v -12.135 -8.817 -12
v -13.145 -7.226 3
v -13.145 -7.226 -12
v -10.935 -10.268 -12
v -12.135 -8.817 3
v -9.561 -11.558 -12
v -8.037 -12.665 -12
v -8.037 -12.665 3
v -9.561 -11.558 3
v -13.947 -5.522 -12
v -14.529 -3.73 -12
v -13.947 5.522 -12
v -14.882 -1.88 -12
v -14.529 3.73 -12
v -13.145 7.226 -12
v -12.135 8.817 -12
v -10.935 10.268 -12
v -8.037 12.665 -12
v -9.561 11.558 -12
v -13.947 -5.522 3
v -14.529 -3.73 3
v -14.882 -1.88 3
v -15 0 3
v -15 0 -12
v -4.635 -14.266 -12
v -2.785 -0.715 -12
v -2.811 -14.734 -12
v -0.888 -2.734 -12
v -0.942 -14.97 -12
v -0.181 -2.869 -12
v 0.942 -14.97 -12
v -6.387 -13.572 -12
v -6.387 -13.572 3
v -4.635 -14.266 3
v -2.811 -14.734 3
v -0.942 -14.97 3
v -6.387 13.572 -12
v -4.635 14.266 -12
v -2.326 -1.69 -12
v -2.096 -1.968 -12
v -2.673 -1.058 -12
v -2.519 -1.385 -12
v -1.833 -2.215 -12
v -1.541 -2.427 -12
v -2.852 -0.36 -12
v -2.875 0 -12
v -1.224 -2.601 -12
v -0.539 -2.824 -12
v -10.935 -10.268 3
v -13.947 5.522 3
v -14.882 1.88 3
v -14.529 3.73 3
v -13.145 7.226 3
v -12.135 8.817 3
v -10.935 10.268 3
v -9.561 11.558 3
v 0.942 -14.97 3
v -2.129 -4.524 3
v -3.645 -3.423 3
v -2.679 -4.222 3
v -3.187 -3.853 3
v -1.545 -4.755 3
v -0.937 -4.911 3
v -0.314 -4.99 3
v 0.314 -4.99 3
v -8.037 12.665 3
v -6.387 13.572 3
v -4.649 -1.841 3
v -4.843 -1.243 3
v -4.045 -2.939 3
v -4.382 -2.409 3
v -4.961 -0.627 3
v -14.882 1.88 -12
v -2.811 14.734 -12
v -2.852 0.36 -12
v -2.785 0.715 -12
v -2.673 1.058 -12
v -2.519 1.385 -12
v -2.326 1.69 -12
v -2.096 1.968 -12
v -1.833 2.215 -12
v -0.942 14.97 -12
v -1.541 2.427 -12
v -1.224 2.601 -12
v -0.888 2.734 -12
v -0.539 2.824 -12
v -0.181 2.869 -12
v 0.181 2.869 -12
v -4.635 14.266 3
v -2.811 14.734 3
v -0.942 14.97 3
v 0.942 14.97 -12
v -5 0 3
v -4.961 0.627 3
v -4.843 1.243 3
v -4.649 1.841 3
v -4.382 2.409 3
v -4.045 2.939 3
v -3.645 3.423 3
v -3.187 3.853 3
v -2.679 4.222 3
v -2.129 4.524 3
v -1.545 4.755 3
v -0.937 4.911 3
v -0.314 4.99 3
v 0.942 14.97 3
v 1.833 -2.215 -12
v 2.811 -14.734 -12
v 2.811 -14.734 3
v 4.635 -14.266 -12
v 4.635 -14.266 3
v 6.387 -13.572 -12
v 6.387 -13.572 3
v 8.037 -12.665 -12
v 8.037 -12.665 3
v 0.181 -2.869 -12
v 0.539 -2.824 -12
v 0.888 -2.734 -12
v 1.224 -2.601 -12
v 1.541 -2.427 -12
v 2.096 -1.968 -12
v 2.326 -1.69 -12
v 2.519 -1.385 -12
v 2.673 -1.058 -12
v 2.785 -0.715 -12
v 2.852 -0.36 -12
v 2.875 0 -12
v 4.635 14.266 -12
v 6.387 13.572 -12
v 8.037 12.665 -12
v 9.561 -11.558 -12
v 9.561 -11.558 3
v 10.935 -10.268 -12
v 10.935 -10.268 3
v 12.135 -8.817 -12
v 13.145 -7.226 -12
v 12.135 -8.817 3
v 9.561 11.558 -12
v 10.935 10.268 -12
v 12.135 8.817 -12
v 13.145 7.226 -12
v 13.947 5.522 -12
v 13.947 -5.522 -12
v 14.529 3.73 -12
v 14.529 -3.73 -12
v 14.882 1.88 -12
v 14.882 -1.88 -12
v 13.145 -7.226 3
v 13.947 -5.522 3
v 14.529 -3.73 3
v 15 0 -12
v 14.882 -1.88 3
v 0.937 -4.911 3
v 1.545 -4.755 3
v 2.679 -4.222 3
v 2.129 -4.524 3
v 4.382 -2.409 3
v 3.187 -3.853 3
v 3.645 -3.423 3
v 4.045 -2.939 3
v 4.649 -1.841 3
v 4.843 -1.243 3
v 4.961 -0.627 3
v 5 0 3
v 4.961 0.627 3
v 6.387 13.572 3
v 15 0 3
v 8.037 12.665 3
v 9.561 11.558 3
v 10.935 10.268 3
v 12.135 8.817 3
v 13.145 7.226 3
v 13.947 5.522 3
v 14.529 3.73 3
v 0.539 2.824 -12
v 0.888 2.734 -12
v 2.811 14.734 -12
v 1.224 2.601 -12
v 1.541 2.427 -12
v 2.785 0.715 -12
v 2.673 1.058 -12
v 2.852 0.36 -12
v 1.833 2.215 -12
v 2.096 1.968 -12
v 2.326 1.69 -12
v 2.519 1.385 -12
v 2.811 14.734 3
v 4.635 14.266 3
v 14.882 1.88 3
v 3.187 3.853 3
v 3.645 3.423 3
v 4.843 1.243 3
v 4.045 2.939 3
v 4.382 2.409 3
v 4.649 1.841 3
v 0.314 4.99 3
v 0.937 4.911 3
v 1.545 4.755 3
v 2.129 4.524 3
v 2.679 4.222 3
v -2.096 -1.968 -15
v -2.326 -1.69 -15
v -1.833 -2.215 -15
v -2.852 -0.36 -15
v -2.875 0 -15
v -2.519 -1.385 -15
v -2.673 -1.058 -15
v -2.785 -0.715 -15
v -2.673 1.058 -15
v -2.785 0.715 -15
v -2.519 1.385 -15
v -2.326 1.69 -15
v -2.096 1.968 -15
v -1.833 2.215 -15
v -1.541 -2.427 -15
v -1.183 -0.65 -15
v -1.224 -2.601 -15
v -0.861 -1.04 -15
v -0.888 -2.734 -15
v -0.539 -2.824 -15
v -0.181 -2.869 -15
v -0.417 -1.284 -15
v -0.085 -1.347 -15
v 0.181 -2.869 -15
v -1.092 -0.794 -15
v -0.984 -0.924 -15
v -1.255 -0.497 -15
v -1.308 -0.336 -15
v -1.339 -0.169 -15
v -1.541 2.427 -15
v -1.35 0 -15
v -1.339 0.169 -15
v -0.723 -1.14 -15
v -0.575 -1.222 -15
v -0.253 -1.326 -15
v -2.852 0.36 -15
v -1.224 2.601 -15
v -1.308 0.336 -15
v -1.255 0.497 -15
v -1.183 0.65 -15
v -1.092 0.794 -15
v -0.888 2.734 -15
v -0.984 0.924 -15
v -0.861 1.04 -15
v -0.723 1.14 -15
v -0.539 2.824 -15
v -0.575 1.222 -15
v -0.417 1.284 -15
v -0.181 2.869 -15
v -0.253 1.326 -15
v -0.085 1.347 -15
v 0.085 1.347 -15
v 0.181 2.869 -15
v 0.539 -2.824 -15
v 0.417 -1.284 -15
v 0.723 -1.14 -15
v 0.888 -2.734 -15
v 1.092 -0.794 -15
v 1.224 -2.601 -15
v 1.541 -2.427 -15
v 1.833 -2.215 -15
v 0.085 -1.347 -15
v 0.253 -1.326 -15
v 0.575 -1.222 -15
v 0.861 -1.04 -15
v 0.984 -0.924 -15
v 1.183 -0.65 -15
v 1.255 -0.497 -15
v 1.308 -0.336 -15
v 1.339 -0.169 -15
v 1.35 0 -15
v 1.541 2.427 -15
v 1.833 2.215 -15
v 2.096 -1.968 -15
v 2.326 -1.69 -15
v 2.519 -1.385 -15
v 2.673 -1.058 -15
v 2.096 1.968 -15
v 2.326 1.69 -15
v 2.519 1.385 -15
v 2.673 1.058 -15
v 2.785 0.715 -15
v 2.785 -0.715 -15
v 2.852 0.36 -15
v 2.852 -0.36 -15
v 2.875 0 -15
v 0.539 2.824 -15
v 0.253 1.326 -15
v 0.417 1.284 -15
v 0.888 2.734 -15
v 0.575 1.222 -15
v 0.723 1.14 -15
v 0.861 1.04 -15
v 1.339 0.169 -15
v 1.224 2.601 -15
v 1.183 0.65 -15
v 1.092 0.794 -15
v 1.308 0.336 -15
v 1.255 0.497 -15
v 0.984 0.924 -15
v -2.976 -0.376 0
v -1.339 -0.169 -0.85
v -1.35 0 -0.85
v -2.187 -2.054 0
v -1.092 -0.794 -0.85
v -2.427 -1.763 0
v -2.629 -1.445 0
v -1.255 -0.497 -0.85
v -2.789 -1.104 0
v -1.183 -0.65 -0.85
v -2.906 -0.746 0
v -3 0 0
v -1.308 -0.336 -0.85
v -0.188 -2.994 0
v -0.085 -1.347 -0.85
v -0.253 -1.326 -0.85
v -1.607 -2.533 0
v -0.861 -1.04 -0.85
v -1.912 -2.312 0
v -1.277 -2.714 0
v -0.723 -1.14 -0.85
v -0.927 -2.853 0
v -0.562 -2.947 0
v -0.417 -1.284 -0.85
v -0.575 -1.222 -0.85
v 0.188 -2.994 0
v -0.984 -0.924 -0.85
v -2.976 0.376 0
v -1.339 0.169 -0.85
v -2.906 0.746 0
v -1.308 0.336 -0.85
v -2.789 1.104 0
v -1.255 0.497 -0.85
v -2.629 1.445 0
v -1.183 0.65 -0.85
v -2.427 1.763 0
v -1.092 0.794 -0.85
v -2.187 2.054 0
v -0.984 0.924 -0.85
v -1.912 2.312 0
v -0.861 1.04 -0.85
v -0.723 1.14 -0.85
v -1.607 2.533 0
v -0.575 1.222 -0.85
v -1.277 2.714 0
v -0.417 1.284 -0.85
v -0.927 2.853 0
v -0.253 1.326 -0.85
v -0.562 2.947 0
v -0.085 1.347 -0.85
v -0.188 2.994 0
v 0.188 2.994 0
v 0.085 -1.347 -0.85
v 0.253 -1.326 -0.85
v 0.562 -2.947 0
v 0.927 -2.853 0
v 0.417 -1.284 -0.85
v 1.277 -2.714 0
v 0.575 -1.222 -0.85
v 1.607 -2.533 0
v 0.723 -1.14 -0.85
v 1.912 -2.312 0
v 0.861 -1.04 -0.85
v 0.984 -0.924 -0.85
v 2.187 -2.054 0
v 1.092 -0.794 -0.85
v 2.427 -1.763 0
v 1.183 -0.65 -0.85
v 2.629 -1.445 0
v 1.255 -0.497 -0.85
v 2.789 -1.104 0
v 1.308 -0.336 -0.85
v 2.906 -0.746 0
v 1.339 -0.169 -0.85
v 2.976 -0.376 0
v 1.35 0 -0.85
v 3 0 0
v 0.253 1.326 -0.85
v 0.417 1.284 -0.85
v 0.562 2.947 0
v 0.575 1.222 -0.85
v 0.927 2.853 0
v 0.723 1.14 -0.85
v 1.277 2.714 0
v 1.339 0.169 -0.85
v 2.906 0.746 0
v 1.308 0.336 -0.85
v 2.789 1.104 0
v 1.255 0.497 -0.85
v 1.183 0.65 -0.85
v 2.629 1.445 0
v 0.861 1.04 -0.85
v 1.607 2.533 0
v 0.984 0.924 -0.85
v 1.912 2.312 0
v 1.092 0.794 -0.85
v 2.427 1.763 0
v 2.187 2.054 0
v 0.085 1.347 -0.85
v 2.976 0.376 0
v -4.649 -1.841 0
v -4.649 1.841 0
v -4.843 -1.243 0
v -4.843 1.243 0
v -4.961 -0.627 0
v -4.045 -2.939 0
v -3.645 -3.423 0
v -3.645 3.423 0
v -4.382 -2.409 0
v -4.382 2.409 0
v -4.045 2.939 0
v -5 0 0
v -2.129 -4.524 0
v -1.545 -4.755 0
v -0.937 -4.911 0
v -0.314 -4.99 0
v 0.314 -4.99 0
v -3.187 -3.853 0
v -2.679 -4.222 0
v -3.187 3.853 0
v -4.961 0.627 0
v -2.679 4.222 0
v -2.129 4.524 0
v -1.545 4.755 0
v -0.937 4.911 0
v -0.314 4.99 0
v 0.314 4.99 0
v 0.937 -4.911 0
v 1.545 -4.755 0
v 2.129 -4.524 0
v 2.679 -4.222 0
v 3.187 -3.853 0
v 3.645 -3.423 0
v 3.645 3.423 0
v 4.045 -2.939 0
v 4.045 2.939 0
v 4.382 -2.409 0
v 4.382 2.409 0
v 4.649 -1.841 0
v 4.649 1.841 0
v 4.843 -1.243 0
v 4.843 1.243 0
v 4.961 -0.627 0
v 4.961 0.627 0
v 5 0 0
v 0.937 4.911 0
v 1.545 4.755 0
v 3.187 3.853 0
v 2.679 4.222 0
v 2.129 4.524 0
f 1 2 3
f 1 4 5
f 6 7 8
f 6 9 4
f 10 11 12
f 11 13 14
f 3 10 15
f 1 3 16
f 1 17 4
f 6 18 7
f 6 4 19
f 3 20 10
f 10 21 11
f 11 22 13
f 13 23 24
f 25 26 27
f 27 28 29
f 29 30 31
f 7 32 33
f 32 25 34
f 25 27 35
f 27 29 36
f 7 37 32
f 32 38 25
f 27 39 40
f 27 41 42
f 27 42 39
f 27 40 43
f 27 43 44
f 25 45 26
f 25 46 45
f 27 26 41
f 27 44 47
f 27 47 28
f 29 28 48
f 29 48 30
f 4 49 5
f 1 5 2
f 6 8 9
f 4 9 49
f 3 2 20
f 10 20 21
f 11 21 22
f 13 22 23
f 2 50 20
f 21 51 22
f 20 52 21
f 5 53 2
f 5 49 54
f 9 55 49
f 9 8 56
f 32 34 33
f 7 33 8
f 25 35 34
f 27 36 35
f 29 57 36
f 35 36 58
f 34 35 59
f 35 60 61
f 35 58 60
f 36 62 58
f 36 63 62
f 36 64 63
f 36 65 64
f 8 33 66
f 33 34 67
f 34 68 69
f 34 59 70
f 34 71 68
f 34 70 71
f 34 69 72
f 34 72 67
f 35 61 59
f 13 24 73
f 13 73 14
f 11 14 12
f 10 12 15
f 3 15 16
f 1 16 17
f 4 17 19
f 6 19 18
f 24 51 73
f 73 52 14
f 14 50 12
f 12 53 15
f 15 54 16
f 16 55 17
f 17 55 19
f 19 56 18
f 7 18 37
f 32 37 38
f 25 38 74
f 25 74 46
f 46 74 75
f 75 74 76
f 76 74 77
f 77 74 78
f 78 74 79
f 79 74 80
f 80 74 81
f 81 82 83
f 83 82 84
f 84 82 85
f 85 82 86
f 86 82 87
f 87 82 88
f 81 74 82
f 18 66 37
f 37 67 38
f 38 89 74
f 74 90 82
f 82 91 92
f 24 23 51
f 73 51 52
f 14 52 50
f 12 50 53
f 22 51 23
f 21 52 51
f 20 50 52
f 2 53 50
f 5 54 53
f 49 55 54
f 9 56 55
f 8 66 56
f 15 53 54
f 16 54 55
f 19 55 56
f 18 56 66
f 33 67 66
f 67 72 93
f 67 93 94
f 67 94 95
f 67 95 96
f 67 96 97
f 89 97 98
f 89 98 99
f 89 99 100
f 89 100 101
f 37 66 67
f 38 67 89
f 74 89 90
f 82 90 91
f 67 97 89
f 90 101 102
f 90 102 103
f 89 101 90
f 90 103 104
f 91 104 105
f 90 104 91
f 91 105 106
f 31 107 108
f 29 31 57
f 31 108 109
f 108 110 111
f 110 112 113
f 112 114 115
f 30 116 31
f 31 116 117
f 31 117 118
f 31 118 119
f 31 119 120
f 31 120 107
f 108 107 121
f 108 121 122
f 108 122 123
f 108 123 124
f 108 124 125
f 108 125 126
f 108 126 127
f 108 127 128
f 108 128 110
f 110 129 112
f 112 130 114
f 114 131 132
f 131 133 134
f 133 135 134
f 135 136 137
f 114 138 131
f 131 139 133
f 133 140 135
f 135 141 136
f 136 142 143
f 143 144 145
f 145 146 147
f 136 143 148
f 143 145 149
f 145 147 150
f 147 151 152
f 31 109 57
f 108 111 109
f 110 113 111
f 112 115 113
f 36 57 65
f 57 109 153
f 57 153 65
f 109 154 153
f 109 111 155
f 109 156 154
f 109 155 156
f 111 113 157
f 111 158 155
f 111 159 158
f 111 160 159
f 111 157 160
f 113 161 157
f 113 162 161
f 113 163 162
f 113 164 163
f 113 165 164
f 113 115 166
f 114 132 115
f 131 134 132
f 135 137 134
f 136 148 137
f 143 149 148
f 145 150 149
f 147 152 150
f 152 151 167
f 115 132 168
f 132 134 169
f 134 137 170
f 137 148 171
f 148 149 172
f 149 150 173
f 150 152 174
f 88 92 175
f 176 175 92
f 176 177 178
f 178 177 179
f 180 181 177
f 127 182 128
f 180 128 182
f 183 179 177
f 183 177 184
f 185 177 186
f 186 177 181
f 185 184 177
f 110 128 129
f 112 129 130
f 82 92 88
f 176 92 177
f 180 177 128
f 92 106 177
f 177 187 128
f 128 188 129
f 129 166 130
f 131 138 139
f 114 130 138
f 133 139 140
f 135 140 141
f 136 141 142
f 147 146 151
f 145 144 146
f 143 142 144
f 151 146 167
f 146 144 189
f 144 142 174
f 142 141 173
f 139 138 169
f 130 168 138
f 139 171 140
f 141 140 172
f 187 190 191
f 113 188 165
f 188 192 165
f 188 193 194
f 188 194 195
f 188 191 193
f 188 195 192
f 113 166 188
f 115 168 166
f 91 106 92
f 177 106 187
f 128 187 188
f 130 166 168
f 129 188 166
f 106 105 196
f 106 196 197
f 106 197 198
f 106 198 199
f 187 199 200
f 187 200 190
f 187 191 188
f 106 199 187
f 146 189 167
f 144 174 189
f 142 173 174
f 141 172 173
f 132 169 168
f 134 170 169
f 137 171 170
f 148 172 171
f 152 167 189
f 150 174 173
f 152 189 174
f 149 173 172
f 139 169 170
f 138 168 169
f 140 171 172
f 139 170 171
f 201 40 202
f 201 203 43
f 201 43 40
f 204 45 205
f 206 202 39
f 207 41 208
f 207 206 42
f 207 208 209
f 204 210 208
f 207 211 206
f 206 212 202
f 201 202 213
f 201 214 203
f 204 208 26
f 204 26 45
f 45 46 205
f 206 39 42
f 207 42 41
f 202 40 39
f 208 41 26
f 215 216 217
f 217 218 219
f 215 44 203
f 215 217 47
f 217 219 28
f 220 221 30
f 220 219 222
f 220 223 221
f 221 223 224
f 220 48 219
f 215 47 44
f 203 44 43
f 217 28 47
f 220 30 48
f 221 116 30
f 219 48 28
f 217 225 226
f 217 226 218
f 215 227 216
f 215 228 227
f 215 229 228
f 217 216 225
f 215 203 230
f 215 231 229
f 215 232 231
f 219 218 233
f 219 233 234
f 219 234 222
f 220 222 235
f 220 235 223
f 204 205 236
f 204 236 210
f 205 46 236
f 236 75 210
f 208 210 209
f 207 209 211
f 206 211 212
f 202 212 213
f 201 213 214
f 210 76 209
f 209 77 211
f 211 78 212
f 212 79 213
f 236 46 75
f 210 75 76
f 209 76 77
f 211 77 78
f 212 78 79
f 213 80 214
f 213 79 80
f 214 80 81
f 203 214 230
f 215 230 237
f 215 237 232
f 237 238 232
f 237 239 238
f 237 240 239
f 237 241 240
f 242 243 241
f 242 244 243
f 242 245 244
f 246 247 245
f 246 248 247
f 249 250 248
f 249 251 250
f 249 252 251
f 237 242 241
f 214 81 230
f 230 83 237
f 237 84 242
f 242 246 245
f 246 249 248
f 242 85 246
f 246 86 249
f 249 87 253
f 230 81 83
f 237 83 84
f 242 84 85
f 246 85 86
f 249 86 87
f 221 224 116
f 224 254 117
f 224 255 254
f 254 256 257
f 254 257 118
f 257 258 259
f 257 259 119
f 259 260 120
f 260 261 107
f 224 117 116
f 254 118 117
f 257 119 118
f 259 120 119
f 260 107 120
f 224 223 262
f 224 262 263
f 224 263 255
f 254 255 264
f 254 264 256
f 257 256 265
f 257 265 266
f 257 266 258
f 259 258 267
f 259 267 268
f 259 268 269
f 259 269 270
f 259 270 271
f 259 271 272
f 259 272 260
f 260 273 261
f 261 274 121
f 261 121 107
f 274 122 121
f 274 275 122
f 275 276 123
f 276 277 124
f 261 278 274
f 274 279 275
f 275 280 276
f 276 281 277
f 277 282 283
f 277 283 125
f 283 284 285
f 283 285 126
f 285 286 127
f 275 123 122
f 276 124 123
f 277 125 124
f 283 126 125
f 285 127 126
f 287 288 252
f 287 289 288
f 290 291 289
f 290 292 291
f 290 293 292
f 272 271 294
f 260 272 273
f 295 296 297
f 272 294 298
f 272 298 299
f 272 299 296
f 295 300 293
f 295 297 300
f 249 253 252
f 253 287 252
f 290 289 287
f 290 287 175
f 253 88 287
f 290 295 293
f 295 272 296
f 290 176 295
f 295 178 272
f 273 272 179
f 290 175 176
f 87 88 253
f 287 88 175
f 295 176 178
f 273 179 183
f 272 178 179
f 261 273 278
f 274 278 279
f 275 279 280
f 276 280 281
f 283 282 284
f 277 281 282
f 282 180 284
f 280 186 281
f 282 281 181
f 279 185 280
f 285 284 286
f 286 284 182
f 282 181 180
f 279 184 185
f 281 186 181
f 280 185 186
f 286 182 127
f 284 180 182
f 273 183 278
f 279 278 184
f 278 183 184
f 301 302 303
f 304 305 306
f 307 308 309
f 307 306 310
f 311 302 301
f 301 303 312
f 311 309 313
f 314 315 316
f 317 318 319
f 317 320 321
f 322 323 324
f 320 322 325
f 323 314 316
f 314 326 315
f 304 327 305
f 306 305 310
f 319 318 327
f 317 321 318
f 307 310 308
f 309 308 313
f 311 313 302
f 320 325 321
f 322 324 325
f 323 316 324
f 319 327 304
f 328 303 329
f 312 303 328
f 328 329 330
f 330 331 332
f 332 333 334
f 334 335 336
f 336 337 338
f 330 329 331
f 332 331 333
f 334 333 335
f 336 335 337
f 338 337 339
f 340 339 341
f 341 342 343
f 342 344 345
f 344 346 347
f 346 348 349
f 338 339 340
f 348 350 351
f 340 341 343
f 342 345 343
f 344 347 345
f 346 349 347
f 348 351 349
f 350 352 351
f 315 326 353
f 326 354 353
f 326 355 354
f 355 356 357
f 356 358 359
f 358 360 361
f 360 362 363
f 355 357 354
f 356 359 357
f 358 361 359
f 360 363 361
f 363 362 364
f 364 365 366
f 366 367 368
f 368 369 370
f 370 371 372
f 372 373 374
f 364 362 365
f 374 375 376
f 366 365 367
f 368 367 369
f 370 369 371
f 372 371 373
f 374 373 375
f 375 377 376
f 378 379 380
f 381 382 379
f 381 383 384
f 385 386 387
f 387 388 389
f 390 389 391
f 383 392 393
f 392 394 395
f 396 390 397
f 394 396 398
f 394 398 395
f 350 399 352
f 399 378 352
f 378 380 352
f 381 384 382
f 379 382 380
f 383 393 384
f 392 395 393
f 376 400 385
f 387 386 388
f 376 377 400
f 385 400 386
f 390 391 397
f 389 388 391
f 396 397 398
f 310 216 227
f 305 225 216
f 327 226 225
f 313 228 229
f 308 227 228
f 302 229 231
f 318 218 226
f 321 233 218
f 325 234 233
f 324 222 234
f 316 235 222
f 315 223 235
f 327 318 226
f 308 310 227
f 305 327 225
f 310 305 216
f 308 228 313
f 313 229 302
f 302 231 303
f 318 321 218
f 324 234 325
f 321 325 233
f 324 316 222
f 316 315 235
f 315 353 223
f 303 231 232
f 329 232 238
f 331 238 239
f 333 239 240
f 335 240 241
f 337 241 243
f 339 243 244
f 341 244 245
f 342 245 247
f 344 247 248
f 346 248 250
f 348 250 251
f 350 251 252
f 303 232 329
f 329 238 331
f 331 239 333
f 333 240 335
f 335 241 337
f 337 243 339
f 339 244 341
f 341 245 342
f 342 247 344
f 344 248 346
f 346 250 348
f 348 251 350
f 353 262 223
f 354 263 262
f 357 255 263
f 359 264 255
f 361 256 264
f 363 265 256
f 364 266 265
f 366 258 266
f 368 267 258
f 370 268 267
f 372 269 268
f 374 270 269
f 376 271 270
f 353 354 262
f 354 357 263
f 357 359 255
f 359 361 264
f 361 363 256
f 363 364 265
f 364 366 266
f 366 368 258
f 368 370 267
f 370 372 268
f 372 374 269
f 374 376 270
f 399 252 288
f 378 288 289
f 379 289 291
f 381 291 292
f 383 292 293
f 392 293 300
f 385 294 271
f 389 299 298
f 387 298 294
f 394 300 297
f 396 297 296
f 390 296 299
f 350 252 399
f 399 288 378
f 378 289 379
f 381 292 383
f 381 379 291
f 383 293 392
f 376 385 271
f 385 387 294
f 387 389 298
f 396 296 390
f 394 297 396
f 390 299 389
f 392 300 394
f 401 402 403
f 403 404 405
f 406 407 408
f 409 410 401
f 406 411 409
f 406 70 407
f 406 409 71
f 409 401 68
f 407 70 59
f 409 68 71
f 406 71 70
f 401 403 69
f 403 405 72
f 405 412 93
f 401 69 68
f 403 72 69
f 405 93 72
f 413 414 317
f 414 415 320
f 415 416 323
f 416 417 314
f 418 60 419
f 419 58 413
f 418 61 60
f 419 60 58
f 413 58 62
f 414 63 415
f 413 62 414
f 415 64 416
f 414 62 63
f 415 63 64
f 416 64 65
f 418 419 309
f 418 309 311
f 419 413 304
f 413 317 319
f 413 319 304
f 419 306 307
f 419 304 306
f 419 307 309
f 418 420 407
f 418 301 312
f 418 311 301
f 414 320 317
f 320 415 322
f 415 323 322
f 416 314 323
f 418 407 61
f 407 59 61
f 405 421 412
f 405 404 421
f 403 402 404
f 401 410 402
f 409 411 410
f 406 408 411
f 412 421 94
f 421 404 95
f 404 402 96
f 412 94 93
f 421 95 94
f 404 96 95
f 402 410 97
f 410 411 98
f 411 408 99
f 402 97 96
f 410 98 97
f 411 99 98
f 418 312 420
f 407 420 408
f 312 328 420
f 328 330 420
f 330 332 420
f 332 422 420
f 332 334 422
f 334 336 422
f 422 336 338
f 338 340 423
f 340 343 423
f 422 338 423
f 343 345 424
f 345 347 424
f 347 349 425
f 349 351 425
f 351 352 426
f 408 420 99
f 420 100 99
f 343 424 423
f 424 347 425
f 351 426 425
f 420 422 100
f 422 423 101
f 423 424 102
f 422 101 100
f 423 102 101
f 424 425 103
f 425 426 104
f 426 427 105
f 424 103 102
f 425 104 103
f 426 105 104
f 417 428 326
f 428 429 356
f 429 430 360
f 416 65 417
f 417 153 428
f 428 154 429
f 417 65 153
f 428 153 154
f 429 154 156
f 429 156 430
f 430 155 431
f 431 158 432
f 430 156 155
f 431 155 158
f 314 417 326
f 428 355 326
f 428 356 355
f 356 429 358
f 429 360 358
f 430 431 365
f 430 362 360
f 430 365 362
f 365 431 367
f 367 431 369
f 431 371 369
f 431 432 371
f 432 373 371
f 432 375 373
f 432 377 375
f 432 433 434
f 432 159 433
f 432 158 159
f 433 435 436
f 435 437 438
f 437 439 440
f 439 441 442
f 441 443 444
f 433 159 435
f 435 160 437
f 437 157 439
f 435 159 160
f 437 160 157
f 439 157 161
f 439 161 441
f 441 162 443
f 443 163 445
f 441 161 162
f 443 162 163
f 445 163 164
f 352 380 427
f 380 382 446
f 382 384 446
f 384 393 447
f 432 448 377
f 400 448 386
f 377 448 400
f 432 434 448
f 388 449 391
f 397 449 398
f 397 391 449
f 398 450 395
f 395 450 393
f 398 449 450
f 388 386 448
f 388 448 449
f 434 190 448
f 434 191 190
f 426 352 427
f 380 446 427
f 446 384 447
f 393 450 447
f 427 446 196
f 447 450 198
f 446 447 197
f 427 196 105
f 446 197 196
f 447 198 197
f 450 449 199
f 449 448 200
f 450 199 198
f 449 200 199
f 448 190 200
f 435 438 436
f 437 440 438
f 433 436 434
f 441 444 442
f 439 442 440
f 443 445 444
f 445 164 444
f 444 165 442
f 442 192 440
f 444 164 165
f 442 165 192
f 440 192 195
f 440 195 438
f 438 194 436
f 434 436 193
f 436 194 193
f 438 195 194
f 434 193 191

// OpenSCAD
$fn = 50;

difference() {
	union() {
		translate(v = [0, 0, -12.0]) {
			cylinder(h = 15, r = 15.0);
		}
		#translate(v = [0, 0, -15.0]) {
			cylinder(h = 15, r = 2.875);
		}
	}
	union() {
		translate(v = [0, 0, 0]) {
			rotate(a = [0, 0, 0]) {
				difference() {
					union() {
						translate(v = [0, 0, -15.0]) {
							cylinder(h = 15, r = 1.0);
						}
						translate(v = [0, 0, -0.85]) {
							cylinder(h = 0.85, r1 = 1.35, r2 = 3.0);
						}
						translate(v = [0, 0, -15.0]) {
							cylinder(h = 15, r = 1.35);
						}
						translate(v = [0, 0, -15.0]) {
							cylinder(h = 15, r = 1.0);
						}
					}
					union();
				}
			}
		}
		#cylinder(h = 3, r = 5.0);
	}
}
